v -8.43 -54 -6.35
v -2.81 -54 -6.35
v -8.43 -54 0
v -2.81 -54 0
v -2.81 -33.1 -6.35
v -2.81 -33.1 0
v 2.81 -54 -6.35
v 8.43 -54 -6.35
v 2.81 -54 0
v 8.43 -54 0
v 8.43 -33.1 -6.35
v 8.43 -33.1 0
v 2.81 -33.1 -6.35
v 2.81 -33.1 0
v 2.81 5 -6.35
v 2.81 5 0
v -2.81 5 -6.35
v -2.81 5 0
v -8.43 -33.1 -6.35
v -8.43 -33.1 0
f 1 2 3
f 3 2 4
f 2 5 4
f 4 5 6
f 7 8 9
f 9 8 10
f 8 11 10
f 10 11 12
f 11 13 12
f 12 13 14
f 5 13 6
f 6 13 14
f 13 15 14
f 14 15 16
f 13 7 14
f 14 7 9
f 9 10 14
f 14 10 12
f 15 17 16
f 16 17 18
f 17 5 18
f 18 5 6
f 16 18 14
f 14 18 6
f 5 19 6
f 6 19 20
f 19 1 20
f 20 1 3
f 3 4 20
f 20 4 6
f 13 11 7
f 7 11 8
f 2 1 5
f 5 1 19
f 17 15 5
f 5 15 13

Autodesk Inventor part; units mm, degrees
ref_plane "YZ Plane" through (0, 0, 0) normal (1, 0, 0) x (0, 1, 0)
ref_plane "XZ Plane" through (0, 0, 0) normal (0, 1, 0) x (-1, 0, 0)
sketch "Sketch1" plane through (0, 0, 0) normal (0, 0, 1) x (1, 0, 0)
  line L0 (-2.81, 5) -> (2.81, 5)
  line L1 (2.81, 5) -> (2.81, -33.1)
  line L2 (2.81, -33.1) -> (-2.81, -33.1)
  line L3 (-2.81, -33.1) -> (-2.81, 5)
  line L4 (-2.81, -33.1) -> (-8.43, -33.1)
  line L5 (-8.43, -33.1) -> (-8.43, -54)
  line L6 (-8.43, -54) -> (-2.81, -54)
  line L7 (-2.81, -54) -> (-2.81, -33.1)
  line L8 (-3.81, 1) -> (-3.81, -16.3736) construction
  line L9 (3.81, -16.3736) -> (3.81, 1) construction
  line L10 (-0.64, 6) -> (-3.81, 6) construction
  line L11 (-9.398, -55) -> (-6.228, -55) projected
  line L12 (0, -67.2) -> (0, 18.2) construction
  line L13 (2.81, -33.1) -> (8.43, -33.1)
  line L14 (8.43, -33.1) -> (8.43, -54)
  line L15 (8.43, -54) -> (2.81, -54)
  line L16 (2.81, -54) -> (2.81, -33.1)
  point P0 (0, 0)
  point P1 (-7.813, -55)
  dimension "d0" = 1
  dimension "d1" = 1
  dimension "d2" = 1
  dimension "d3" = 38.1
  dimension "d4" = 1
ref_plane "Work Plane1" through (6.228, -54, -6.35) normal (0, 0, -1) x (0, 1, 0)
extrude "Extrusion1" add sketch "Sketch1" against normal up to surface (6.35 mm away)
properties part number "ForearmActuatorConnectorBoundingBox"
